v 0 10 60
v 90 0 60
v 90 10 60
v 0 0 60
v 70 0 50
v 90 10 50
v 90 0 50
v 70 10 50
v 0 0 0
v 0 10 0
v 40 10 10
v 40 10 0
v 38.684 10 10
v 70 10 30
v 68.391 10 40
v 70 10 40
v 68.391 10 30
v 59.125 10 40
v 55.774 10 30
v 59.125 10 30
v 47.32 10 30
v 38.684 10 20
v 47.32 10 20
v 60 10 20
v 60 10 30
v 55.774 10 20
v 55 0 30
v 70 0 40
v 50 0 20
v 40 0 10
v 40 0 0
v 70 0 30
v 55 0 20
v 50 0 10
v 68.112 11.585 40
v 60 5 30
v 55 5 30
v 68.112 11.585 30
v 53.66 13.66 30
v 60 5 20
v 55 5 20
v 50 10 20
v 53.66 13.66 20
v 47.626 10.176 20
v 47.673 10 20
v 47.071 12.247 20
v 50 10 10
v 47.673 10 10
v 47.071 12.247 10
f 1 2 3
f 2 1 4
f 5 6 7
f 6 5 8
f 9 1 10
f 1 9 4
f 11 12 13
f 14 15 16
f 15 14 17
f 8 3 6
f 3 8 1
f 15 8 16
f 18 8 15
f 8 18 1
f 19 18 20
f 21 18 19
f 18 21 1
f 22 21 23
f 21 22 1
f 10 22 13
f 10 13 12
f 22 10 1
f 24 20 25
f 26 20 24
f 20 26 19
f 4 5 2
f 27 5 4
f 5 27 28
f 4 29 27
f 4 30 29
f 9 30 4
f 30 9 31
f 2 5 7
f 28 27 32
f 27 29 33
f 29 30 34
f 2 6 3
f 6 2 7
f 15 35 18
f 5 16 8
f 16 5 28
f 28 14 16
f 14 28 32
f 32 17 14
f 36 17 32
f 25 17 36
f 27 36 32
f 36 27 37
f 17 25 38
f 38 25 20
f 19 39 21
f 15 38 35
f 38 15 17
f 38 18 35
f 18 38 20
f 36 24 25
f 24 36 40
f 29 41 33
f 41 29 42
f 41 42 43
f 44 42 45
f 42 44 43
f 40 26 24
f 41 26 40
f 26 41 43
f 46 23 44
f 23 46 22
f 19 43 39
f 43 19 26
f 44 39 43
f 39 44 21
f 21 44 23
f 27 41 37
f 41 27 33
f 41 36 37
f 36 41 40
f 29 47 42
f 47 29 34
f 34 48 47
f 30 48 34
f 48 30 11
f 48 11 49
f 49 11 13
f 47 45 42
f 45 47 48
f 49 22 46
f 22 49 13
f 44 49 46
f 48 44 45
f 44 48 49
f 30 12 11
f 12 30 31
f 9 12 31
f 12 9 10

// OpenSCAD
// Define dimensions for each component
module long_hook_shaped_bar() {
    difference() {
        cube([100, 10, 10]); // Main bar
        translate([90, 0, 0]) cube([10, 10, 10]); // Hook
    }
}

module hook_shaped_bracket() {
    difference() {
        cube([80, 10, 10]); // Main bar
        translate([70, 0, 0]) cube([10, 10, 10]); // Hook
    }
}

module flat_bar_with_small_bend() {
    union() {
        cube([70, 10, 10]); // Main bar
        translate([60, 0, 0]) rotate([0, 0, 10]) cube([10, 10, 10]); // Small bend
    }
}

module angled_bar_with_notch() {
    difference() {
        union() {
            cube([60, 10, 10]); // Main bar
            translate([50, 0, 0]) rotate([0, 0, 30]) cube([10, 10, 10]); // Angled end
        }
        translate([55, 0, 0]) cube([5, 5, 10]); // Notch
    }
}

module straight_bar_with_bent_end() {
    union() {
        cube([50, 10, 10]); // Main bar
        translate([40, 0, 0]) rotate([0, 0, 15]) cube([10, 10, 10]); // Bent end
    }
}

module short_straight_bar() {
    cube([40, 10, 10]); // Short straight bar
}

// Assemble the model based on positional relationships
module flexible_coupling() {
    translate([0, 0, 50]) long_hook_shaped_bar(); // Layer 1
    translate([0, 0, 40]) hook_shaped_bracket(); // Layer 2
    translate([0, 0, 30]) flat_bar_with_small_bend(); // Layer 3
    translate([0, 0, 20]) angled_bar_with_notch(); // Layer 4
    translate([0, 0, 10]) straight_bar_with_bent_end(); // Layer 5
    translate([0, 0, 0]) short_straight_bar(); // Layer 6
}

// Render the model
flexible_coupling();
